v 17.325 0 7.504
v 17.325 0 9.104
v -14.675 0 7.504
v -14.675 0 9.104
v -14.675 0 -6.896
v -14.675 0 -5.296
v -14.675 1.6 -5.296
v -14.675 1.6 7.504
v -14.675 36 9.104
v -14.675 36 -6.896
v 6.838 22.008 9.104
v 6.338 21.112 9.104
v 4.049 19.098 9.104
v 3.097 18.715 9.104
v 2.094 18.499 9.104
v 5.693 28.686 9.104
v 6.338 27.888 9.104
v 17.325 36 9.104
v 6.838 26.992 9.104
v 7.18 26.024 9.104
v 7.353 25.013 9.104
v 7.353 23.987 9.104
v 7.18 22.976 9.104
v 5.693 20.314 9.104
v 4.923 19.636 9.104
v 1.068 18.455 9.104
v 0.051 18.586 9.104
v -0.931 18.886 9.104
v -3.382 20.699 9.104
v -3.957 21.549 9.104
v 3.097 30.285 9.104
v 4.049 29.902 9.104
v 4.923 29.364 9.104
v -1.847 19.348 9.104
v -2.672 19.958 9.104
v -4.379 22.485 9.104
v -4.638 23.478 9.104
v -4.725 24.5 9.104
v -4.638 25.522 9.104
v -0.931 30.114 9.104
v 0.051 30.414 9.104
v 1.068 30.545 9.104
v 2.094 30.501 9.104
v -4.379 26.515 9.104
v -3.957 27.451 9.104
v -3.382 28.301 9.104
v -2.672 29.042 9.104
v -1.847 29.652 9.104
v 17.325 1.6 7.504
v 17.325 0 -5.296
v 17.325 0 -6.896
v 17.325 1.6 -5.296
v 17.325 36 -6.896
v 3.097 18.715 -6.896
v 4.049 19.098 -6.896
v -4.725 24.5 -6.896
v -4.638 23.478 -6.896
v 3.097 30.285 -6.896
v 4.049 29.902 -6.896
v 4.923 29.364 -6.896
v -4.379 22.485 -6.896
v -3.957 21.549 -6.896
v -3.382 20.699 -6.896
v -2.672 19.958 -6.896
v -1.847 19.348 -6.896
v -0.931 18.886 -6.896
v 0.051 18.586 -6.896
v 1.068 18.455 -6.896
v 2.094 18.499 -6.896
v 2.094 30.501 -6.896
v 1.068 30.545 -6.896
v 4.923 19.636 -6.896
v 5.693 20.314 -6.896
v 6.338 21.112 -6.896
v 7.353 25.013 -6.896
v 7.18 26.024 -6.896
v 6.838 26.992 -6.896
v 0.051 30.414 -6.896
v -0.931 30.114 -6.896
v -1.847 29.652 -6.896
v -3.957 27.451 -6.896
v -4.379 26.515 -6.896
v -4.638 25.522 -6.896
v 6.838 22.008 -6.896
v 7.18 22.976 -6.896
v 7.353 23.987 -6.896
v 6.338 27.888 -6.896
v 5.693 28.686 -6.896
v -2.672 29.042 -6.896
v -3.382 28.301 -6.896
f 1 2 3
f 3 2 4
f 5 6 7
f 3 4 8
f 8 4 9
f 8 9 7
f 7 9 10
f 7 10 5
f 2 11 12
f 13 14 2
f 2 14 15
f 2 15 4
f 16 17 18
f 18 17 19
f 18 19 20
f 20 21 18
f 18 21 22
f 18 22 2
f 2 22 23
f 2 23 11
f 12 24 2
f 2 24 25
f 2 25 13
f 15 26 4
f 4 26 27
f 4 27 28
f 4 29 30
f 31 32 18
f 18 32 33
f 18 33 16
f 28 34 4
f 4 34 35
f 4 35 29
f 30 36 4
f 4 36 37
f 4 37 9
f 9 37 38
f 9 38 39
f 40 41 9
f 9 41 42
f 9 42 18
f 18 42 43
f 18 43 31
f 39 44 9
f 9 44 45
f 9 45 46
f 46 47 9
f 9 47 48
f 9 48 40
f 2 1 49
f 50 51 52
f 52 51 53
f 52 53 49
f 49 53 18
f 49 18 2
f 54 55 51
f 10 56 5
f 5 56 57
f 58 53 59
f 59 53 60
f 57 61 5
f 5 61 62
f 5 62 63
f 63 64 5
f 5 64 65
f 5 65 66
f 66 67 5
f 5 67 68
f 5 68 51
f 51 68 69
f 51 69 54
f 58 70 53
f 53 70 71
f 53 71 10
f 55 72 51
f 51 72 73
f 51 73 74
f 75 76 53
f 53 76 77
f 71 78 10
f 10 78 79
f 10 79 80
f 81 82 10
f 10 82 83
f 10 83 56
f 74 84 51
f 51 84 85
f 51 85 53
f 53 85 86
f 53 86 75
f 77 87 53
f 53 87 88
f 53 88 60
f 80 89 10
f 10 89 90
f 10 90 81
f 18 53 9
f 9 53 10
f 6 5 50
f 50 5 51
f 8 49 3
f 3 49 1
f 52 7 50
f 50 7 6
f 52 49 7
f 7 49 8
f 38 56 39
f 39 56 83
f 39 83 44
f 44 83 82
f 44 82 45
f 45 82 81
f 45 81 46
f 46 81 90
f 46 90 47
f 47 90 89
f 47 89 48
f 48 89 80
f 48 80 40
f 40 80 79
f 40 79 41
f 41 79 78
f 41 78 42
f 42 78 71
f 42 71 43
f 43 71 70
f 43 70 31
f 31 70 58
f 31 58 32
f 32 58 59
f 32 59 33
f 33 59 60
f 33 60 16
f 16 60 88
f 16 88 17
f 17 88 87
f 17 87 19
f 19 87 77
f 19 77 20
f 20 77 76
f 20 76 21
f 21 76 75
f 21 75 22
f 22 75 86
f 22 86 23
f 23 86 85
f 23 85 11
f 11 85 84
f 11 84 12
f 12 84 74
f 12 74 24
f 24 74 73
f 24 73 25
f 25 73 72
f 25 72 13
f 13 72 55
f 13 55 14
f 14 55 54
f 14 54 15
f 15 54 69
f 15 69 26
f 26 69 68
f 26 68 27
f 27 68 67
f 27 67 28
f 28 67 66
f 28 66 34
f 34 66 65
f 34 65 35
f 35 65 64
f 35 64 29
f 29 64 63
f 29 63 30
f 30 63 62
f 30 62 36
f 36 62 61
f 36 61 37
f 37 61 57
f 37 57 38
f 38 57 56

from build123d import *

# Parameters (mm, degrees)
SKETCH1_W           = 32
SKETCH1_H           = 16
BOSS_EXTRUDE1_DEPTH = 36
SKETCH2_W           = 32
SKETCH2_H           = 12.8
CUT_EXTRUDE1_DEPTH  = 1.6
SKETCH3_R           = 6.05
CUT_EXTRUDE2_DEPTH  = 44.036739415


with BuildPart() as part:
    # Sketch1 → Boss-Extrude1 (new body)
    with BuildSketch(Plane(origin=(0, 0, 0), x_dir=(1, 0, 0), z_dir=(0, 1, 0))):
        with Locations((1.325153374, -1.104294479)):
            Rectangle(SKETCH1_W, SKETCH1_H)
    extrude(amount=BOSS_EXTRUDE1_DEPTH)

    # Sketch2 → Cut-Extrude1 (cut)
    with BuildSketch(Plane(origin=(0, 0, 0), x_dir=(-1, 0, 0), z_dir=(0, -1, 0))):
        with Locations((-1.325153374, -1.104294479)):
            Rectangle(SKETCH2_W, SKETCH2_H)
    extrude(amount=-CUT_EXTRUDE1_DEPTH, mode=Mode.SUBTRACT)

    # Sketch3 → Cut-Extrude2 (cut, through all)
    with BuildSketch(Plane(origin=(0, 0, -6.895705521), x_dir=(-1, 0, 0), z_dir=(0, 0, -1))):
        with Locations((-1.325153374, 24.5)):
            Circle(SKETCH3_R)
    extrude(amount=-CUT_EXTRUDE2_DEPTH, mode=Mode.SUBTRACT)


solid = part.part
